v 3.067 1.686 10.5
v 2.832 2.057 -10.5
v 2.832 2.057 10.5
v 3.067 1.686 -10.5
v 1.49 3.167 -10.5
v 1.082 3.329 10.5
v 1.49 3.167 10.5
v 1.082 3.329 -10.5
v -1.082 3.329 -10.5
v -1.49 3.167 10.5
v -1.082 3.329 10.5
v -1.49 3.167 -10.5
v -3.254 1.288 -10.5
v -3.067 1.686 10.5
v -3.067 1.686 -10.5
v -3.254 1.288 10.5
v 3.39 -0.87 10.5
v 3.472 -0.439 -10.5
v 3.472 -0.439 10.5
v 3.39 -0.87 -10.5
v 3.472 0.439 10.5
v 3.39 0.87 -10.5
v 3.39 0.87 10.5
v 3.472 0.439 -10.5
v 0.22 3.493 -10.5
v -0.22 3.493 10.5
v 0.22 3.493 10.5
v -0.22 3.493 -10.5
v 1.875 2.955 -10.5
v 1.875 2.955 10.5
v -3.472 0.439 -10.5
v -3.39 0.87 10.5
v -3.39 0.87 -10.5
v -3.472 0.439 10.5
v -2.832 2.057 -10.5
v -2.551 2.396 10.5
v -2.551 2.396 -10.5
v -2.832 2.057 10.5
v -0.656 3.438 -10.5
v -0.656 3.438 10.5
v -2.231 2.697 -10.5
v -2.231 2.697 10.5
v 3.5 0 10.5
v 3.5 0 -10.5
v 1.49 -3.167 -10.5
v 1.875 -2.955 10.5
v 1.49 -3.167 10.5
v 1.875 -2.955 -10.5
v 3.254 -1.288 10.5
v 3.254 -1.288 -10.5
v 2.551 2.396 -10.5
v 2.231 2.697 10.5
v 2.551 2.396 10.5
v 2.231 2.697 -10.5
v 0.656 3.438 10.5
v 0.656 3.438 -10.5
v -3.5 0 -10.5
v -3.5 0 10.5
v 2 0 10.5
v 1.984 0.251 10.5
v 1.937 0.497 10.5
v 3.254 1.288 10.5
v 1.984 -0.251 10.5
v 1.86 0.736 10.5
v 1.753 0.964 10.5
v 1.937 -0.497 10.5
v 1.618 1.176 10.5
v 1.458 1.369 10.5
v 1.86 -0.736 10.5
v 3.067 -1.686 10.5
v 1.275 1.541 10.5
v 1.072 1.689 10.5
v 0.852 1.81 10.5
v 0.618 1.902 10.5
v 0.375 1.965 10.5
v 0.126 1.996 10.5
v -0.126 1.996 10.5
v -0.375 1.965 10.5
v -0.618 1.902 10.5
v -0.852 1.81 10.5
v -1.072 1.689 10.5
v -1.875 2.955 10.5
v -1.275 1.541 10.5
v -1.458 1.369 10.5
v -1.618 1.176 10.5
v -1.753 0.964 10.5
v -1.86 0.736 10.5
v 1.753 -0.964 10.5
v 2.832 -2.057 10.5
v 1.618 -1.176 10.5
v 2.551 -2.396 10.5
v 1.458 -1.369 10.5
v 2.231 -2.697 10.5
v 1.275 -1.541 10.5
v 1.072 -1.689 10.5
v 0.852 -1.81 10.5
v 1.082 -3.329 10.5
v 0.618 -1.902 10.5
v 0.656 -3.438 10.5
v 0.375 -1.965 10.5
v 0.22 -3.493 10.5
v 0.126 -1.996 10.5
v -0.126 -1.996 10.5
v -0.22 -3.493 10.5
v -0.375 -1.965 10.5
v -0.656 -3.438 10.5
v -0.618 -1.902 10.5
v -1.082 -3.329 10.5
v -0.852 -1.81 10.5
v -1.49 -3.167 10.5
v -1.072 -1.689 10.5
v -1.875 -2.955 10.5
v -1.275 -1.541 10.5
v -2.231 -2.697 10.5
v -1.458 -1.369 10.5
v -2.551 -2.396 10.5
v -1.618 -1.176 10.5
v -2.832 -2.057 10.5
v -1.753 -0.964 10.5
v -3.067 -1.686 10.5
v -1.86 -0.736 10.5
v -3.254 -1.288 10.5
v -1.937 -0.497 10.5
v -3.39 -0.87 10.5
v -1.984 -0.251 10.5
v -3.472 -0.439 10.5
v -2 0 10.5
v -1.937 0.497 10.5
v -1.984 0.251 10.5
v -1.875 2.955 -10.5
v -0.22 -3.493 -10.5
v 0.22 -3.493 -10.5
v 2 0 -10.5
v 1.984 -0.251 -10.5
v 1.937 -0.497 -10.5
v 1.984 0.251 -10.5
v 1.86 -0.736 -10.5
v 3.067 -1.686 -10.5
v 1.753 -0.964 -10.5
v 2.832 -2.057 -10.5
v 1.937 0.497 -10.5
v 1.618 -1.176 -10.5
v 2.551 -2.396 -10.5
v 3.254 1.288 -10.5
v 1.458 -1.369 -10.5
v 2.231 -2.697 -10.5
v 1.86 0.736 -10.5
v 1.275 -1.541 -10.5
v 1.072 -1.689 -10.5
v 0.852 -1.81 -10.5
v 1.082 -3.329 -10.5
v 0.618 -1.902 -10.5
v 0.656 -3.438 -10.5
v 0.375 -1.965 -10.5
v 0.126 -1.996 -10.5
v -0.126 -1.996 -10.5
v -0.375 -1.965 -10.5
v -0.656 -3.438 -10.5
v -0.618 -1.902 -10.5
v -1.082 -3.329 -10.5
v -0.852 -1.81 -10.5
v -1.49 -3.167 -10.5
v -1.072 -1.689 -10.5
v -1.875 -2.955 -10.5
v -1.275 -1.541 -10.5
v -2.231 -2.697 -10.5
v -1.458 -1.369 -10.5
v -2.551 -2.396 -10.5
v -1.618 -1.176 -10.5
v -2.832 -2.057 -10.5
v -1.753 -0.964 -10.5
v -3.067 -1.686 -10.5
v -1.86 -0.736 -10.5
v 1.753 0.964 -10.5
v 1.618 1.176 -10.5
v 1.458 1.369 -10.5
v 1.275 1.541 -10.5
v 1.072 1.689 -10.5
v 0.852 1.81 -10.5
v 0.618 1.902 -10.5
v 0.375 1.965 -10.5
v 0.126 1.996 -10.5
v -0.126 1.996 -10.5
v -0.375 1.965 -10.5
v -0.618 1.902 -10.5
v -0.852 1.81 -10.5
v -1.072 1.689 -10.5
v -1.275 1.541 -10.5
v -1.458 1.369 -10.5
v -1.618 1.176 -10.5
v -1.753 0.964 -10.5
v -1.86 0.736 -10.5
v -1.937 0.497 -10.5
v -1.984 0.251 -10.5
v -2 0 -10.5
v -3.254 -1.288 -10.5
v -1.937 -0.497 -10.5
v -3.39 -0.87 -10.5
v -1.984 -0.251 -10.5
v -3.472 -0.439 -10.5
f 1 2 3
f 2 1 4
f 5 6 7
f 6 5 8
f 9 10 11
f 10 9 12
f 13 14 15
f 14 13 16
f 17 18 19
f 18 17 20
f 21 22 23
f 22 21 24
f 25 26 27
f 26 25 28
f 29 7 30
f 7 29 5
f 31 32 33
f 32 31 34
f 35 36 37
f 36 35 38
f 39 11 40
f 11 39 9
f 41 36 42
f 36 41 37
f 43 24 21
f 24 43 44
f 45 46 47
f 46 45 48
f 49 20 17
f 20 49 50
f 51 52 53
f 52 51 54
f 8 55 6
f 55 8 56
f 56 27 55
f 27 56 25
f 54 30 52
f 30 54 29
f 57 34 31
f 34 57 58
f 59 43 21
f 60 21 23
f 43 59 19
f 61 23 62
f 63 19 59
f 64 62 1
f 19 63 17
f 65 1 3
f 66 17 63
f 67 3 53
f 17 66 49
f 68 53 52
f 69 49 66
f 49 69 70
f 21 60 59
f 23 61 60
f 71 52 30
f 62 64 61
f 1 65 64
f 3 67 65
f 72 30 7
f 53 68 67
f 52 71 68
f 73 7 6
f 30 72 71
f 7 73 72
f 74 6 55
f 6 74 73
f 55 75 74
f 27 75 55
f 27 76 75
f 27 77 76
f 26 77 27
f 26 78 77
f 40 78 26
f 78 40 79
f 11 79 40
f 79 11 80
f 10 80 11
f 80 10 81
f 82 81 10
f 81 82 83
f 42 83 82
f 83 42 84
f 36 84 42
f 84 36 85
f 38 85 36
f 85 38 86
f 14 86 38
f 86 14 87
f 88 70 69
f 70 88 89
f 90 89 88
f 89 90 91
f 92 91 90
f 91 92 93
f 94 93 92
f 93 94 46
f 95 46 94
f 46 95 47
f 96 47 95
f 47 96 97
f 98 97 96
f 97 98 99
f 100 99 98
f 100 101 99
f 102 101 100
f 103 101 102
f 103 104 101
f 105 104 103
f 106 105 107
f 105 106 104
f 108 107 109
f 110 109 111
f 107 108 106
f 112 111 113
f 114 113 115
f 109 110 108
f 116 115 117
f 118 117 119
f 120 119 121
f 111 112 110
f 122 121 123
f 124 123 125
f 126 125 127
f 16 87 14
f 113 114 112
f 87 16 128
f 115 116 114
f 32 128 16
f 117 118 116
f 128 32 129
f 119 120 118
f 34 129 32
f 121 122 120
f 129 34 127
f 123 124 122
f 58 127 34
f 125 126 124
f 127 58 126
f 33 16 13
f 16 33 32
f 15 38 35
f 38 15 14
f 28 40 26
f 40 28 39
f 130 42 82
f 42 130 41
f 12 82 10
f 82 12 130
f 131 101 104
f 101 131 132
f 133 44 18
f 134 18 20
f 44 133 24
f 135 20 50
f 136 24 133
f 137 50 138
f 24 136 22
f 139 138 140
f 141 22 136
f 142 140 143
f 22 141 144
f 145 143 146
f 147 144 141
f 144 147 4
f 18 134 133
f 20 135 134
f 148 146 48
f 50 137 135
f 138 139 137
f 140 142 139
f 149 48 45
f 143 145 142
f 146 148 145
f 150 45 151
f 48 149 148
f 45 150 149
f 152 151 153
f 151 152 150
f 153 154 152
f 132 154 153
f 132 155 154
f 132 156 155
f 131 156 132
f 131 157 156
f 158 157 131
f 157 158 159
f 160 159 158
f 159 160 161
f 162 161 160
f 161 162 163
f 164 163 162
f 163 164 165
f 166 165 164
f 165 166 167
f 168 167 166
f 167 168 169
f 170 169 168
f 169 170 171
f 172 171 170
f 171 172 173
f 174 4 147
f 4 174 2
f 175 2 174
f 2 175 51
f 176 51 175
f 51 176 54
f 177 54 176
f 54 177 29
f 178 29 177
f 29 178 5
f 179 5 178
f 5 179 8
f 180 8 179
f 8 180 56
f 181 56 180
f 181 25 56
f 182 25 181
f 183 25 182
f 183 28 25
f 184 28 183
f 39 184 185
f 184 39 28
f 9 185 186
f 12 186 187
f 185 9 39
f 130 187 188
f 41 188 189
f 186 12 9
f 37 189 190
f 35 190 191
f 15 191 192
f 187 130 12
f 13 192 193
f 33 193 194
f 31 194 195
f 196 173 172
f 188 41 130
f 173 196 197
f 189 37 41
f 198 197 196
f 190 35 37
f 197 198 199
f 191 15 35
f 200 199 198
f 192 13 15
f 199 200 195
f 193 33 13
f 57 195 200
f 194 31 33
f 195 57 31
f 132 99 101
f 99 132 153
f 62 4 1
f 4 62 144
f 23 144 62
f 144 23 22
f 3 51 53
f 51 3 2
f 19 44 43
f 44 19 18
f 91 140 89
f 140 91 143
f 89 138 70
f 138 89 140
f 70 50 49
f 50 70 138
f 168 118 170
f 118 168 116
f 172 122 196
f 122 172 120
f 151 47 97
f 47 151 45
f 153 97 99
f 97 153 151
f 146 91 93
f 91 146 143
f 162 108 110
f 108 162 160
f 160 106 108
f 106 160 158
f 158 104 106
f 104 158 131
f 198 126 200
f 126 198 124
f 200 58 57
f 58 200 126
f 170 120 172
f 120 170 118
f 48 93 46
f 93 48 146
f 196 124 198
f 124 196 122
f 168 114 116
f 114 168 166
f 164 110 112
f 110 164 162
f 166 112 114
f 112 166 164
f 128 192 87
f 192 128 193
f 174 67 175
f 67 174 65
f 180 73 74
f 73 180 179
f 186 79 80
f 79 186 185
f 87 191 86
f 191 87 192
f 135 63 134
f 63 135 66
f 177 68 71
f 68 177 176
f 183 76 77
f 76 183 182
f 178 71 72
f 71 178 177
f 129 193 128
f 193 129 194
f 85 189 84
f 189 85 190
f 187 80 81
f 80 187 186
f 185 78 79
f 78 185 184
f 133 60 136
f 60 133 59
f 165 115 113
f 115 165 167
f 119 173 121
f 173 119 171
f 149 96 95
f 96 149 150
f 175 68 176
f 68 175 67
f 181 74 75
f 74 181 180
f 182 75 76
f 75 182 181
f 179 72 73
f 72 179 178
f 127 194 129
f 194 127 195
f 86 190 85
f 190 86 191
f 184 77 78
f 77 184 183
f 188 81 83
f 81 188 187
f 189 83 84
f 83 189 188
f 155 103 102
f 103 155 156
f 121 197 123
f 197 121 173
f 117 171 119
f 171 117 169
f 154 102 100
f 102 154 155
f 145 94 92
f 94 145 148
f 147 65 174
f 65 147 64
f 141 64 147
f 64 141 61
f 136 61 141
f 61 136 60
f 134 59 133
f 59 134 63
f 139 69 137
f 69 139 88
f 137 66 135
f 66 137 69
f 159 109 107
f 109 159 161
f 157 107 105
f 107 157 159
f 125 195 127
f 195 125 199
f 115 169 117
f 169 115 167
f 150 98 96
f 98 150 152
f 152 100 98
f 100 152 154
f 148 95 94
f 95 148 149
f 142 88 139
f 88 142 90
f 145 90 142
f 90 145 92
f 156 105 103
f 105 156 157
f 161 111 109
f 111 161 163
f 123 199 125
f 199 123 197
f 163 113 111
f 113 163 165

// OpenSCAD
$fn = 50;


difference() {
	union() {
		translate(v = [0, 0, -10.5000000000]) {
			cylinder(h = 21, r = 3.5000000000);
		}
	}
	union() {
		translate(v = [0, 0, -100.0000000000]) {
			cylinder(h = 200, r = 2);
		}
	}
}
